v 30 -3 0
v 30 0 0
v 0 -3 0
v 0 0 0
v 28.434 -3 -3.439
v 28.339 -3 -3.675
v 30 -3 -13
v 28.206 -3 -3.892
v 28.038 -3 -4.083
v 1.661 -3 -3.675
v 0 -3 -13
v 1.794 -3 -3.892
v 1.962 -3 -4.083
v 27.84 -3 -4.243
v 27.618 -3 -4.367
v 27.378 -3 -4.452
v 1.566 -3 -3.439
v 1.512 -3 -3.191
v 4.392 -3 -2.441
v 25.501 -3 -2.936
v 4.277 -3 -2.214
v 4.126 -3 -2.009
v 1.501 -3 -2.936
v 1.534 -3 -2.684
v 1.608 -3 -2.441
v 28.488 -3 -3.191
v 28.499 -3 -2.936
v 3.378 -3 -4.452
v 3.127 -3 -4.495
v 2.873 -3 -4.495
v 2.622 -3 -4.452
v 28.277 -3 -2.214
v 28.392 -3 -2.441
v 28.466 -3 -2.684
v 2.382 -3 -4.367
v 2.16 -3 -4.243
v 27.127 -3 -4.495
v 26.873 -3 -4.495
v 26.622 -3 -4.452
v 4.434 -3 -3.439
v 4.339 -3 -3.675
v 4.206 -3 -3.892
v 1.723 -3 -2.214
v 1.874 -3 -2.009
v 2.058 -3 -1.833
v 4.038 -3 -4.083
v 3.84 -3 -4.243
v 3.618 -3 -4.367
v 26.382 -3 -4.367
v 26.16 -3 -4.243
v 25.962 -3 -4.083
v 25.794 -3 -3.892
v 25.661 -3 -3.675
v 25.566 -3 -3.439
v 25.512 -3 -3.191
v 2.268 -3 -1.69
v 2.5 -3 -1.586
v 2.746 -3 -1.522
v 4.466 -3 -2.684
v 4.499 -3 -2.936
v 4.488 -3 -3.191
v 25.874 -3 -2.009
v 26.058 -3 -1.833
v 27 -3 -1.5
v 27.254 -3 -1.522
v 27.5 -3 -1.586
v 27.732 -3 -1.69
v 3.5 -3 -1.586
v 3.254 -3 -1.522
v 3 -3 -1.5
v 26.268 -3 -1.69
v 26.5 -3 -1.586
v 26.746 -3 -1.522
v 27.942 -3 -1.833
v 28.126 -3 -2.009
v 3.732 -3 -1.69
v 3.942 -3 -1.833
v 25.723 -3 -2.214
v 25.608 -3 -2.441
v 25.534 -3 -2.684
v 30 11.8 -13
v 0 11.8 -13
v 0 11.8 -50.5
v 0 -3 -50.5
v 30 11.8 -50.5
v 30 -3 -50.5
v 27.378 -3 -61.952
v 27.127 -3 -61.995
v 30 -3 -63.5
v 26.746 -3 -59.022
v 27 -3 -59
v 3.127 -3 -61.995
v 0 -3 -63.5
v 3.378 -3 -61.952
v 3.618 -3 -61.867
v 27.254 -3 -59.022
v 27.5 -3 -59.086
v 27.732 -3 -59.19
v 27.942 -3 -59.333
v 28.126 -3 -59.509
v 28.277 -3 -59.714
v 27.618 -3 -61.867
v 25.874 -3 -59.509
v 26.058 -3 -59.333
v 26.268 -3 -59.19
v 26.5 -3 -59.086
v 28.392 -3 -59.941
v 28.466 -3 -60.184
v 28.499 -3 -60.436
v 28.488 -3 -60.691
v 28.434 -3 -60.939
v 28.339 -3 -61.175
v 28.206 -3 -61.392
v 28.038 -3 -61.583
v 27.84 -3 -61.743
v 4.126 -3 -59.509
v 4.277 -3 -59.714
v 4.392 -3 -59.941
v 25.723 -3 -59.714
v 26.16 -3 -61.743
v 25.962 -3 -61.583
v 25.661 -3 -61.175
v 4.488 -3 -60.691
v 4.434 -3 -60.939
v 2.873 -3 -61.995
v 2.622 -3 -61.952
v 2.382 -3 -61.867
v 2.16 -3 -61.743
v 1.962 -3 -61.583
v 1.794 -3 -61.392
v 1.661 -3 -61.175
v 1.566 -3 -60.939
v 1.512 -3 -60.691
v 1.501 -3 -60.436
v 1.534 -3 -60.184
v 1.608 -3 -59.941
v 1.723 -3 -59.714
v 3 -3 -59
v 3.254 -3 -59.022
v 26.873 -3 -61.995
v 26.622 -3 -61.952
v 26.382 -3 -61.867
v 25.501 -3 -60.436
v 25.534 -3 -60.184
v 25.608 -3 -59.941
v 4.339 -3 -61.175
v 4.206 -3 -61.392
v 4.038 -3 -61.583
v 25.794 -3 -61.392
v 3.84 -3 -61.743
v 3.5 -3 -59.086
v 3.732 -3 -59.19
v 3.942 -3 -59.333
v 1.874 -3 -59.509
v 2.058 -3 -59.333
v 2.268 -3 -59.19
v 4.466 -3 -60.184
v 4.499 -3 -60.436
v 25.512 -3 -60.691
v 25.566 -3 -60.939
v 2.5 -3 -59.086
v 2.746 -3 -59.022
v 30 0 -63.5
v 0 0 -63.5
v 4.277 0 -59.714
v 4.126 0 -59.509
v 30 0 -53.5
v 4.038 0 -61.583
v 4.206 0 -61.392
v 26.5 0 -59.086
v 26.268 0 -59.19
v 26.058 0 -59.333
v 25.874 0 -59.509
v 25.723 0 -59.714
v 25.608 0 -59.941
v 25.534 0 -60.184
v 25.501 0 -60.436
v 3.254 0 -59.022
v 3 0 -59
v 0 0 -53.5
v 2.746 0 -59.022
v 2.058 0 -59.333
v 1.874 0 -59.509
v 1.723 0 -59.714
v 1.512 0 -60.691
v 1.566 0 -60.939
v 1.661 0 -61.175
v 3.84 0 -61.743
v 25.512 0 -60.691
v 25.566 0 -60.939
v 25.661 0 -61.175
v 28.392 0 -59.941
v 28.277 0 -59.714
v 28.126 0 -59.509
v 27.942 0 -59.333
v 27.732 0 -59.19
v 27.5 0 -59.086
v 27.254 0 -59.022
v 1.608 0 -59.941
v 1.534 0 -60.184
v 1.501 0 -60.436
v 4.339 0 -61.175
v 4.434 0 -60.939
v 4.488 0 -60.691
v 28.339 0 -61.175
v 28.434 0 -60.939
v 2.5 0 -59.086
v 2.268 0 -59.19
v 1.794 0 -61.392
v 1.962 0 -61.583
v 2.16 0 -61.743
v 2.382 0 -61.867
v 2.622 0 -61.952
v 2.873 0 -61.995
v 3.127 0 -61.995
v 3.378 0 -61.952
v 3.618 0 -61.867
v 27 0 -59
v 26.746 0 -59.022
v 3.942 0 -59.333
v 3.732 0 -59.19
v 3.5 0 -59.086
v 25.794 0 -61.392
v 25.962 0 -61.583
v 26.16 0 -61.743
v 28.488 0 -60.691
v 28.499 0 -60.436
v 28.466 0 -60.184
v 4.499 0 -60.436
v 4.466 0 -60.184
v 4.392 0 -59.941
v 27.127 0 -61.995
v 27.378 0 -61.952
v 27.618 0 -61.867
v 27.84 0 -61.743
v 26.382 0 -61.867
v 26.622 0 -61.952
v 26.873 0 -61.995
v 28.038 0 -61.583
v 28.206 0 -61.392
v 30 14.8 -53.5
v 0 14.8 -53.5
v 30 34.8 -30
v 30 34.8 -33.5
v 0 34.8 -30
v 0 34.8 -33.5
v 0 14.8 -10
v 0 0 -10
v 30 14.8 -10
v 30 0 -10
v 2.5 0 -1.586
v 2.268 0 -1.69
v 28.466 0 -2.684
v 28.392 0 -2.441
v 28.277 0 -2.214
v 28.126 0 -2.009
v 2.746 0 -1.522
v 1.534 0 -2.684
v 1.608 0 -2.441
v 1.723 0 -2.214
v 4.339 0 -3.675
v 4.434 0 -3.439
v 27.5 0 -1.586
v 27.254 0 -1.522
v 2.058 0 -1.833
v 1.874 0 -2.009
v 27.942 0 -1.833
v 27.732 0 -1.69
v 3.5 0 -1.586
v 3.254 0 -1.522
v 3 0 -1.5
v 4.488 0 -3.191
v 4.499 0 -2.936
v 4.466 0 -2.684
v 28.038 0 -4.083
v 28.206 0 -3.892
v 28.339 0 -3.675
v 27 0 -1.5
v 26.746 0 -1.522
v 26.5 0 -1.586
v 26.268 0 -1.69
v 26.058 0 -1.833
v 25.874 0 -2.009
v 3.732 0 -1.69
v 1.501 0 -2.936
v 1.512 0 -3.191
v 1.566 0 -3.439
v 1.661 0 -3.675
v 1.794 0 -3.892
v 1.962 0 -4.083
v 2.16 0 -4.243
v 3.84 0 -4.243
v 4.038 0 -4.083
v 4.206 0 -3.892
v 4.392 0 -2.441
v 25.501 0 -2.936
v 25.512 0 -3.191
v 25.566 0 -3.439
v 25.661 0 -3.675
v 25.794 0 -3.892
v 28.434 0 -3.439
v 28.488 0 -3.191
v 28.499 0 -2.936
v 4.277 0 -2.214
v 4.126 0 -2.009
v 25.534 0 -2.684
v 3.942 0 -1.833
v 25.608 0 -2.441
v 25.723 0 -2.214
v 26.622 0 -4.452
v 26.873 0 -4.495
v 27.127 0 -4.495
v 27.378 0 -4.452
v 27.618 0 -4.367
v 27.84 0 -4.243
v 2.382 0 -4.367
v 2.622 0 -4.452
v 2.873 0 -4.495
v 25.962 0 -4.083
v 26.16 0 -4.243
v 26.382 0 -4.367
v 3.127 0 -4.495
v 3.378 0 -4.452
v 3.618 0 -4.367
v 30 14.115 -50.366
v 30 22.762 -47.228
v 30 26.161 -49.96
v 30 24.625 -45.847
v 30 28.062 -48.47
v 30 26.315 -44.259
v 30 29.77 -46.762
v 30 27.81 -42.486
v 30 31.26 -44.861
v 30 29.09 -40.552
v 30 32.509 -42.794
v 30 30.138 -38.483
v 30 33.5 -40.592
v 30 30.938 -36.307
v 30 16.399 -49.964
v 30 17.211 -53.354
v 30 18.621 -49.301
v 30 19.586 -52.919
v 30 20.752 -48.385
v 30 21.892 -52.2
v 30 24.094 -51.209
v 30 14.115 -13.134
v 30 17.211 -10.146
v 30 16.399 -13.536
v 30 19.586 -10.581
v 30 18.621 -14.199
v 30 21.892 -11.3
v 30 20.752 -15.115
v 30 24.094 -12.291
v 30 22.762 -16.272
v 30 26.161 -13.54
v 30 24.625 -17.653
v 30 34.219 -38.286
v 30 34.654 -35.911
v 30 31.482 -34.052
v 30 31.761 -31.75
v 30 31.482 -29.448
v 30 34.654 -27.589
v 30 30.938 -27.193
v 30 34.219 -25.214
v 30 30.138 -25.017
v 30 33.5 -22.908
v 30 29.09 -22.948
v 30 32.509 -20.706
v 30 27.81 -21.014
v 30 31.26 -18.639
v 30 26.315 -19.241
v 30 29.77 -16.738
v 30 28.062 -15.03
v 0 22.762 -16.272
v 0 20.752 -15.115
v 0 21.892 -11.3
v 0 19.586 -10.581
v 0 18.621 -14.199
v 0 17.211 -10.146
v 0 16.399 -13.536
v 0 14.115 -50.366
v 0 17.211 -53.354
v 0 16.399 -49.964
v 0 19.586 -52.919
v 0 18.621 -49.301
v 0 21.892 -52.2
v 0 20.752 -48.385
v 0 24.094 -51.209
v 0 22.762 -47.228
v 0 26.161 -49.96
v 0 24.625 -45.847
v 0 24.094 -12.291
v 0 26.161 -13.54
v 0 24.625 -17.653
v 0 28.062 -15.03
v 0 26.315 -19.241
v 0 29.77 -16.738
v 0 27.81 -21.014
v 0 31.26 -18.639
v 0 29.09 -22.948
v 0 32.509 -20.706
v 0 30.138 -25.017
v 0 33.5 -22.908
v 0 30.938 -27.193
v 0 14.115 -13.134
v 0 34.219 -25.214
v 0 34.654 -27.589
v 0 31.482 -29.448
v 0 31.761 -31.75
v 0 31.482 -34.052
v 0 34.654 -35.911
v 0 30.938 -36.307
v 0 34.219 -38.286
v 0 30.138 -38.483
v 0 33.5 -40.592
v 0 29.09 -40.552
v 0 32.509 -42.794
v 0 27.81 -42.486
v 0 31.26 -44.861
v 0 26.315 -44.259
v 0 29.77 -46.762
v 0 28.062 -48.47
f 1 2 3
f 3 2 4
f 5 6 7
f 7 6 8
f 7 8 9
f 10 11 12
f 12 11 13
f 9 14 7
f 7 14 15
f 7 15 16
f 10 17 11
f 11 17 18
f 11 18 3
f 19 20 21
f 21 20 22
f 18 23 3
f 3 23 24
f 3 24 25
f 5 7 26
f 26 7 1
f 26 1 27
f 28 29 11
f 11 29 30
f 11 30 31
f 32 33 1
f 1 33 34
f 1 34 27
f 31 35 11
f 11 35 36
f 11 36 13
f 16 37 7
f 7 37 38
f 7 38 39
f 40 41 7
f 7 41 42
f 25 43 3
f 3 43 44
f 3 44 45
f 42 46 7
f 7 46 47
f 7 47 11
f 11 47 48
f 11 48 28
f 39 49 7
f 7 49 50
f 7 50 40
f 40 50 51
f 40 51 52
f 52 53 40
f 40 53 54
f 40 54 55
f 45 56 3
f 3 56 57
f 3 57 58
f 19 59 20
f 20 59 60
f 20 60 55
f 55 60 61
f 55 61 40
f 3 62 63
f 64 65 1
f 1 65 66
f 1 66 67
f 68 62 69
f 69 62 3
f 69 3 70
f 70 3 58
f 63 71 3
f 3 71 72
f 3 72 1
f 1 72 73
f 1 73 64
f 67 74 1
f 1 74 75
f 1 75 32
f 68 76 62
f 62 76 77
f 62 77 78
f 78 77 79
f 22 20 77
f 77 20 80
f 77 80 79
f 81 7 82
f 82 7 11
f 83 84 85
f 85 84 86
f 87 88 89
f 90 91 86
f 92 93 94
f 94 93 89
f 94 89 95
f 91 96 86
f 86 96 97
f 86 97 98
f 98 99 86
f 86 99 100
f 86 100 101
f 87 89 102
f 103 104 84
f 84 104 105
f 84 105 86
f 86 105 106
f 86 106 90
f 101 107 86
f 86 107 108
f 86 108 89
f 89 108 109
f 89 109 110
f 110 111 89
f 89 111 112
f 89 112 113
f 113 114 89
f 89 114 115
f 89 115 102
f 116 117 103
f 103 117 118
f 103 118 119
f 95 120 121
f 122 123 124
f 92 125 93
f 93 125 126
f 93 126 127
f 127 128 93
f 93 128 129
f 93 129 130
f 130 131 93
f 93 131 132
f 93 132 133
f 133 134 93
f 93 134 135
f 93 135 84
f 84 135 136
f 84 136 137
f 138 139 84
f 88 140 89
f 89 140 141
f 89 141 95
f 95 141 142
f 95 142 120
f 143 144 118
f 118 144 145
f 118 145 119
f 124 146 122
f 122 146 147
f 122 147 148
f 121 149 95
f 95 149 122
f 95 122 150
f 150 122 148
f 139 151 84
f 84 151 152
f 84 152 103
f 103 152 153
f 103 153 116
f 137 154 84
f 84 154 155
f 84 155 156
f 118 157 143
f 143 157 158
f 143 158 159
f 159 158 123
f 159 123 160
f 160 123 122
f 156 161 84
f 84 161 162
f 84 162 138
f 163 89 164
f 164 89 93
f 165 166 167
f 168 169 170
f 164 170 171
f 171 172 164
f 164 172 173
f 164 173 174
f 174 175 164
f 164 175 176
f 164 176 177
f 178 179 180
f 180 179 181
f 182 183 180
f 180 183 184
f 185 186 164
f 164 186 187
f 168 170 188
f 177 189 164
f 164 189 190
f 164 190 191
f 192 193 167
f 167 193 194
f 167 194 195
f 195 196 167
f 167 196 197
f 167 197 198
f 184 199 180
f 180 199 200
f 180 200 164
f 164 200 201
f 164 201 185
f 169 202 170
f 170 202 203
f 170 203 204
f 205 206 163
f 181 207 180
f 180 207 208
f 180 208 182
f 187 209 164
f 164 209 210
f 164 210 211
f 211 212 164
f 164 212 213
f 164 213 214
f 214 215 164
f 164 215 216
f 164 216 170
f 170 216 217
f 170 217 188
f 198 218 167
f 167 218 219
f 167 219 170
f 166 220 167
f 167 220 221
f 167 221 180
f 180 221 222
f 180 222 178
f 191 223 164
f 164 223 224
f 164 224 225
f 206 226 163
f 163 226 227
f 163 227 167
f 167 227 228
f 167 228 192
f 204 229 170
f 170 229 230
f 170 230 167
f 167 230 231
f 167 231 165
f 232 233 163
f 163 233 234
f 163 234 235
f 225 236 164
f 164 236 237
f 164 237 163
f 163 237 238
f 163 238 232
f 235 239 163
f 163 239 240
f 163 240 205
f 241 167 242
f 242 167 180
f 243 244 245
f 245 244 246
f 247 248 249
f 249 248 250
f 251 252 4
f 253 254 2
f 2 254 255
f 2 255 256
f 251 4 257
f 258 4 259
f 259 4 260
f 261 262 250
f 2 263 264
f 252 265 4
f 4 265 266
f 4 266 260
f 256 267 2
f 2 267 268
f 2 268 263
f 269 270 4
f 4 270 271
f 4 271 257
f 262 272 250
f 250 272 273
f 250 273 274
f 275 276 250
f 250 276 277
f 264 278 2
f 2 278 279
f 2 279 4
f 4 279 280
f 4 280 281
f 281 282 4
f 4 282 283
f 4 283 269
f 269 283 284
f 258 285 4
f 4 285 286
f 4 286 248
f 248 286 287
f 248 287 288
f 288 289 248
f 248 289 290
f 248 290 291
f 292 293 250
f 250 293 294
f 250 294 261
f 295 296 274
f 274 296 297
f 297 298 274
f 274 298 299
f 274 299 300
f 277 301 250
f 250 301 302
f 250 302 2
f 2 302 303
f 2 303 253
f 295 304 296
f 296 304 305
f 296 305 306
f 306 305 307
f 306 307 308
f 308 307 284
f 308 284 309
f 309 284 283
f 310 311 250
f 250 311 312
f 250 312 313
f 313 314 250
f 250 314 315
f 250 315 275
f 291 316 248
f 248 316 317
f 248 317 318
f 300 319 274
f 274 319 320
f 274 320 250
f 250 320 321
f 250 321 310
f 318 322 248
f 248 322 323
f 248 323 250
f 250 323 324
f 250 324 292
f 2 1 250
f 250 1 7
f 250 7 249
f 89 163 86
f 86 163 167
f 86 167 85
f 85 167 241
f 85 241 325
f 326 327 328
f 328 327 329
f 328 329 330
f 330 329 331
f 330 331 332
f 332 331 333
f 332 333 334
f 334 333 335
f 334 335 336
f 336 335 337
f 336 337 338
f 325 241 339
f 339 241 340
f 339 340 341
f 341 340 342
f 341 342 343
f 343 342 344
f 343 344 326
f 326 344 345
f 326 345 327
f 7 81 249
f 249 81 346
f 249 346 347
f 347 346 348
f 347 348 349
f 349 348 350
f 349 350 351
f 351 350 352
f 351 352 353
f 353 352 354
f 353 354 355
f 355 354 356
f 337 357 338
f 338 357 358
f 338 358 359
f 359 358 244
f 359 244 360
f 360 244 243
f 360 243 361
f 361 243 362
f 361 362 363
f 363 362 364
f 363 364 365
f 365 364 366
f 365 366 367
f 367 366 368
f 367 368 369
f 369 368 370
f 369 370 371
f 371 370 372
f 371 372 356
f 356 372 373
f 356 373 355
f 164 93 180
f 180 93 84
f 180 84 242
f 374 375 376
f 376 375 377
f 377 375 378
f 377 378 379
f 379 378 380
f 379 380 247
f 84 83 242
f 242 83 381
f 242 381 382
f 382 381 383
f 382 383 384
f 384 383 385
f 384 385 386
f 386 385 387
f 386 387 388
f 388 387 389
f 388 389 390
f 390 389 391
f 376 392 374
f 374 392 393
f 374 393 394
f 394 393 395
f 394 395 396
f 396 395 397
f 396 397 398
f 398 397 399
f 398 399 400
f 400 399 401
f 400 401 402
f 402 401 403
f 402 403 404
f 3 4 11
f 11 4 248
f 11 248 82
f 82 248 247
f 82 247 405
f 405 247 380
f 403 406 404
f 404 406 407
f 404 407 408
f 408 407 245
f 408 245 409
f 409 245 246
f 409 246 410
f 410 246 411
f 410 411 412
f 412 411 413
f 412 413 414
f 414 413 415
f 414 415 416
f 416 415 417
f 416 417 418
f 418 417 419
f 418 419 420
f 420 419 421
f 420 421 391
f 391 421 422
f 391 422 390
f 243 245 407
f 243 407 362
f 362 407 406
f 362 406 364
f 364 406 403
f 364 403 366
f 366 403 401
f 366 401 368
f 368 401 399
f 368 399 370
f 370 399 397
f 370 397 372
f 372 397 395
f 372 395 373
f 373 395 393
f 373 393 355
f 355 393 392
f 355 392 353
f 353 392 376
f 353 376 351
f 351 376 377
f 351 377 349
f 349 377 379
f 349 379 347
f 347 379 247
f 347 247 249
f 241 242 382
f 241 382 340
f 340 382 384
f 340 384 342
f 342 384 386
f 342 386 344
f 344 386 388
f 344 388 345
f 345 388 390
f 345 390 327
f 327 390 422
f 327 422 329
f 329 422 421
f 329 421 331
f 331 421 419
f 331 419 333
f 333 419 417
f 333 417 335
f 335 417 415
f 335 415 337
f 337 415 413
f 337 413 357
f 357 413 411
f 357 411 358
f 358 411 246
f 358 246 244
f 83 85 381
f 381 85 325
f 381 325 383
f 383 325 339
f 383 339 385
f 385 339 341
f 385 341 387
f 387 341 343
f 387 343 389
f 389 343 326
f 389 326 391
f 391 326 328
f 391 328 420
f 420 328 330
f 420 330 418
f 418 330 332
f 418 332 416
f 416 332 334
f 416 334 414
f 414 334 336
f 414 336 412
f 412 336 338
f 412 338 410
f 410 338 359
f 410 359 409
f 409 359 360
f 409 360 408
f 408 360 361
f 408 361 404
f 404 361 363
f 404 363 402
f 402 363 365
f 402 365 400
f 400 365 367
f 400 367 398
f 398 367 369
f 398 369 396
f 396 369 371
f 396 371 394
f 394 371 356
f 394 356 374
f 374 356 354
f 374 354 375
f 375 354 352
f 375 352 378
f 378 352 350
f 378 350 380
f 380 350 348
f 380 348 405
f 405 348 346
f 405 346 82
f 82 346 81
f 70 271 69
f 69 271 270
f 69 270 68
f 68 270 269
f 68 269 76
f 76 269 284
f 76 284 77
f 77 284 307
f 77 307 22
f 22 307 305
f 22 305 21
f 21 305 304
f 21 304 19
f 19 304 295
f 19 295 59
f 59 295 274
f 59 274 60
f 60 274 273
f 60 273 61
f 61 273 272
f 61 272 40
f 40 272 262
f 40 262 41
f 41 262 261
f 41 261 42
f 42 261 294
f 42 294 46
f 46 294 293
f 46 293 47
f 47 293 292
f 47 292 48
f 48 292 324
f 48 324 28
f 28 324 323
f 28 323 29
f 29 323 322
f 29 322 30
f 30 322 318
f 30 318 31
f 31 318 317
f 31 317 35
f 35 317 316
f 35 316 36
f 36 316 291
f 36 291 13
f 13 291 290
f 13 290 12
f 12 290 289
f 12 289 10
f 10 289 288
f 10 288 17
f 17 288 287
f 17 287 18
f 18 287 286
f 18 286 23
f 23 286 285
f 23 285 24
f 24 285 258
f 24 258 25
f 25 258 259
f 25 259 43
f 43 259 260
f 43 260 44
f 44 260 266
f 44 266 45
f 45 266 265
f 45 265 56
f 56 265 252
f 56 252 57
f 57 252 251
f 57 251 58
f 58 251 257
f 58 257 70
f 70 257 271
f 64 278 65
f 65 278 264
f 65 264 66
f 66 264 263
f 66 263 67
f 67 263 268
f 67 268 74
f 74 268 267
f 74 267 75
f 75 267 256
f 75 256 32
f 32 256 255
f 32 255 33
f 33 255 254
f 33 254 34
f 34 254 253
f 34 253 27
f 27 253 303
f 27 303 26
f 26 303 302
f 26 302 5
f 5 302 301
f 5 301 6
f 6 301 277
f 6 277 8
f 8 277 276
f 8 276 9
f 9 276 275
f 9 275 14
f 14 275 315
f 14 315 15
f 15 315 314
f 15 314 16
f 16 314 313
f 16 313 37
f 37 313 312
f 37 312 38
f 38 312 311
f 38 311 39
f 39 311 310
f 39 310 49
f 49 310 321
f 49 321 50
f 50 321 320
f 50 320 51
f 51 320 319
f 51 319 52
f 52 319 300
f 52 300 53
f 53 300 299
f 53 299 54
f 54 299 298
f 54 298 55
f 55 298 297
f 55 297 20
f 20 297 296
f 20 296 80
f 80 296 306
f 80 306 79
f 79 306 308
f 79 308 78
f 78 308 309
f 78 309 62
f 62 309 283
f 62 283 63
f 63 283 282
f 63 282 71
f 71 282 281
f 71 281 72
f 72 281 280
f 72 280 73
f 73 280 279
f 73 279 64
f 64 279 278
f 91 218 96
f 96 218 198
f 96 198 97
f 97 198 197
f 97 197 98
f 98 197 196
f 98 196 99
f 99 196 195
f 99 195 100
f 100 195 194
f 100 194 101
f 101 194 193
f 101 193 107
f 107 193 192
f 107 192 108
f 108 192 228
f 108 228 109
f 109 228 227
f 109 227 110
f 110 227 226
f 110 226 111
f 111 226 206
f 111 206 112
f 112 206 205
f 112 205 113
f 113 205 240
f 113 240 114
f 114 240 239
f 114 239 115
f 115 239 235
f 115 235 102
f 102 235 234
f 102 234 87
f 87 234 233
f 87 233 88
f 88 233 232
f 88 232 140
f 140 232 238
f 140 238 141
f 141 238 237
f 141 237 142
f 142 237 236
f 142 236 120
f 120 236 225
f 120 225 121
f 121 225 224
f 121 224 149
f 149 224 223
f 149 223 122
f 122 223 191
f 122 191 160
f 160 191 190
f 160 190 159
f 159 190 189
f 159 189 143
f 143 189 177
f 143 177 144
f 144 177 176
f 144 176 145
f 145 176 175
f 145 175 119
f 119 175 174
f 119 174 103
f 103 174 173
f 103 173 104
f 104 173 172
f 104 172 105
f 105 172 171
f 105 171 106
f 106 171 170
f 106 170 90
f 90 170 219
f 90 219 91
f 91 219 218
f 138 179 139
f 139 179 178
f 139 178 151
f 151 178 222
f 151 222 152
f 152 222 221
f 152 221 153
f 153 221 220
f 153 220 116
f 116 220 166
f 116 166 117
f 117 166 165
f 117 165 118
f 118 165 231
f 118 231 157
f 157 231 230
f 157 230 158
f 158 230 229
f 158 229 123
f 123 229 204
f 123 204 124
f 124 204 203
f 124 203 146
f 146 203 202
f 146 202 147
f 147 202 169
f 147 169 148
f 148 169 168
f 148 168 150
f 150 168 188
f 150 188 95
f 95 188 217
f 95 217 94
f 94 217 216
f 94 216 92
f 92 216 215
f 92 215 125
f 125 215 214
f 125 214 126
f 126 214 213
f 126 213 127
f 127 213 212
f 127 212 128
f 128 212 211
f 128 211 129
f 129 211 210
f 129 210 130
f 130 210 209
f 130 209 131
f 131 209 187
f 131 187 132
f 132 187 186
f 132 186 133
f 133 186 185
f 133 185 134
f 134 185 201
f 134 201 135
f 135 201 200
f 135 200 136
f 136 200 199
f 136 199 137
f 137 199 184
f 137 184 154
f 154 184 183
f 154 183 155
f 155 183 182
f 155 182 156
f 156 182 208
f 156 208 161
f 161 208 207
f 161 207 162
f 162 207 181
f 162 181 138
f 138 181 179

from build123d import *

# Parameters (mm, degrees)
BOSS_EXTRUDE2_DEPTH = 30
FILLET1_R           = 20
SKETCH7_R           = 1.5
CUT_EXTRUDE2_DEPTH  = 79.379142634


with BuildPart() as part:
    # Sketch6 → Boss-Extrude2 (new body)
    with BuildSketch(Plane(origin=(0, 0, 0), x_dir=(0, 0, -1), z_dir=(1, 0, 0))):
        Polygon((0, 0), (10, 0), (10, 34.8), (53.5, 34.8), (53.5, 0), (63.5, 0), (63.5, -3), (50.5, -3), (50.5, 31.8), (13, 31.8), (13, -3), (0, -3), align=None)
    extrude(amount=BOSS_EXTRUDE2_DEPTH)

    # Fillet1
    # the kernel refuses this fillet: 20 mm, written as the material it adds along each edge
    with BuildSketch(Plane(origin=(0, 31.8, -13), x_dir=(0, 0, -1), z_dir=(1, 0, 0)), Plane(origin=(0, 31.8, -50.5), x_dir=(0, -1, 0), z_dir=(1, 0, 0))) as fillet1_piece_1:
        with BuildLine():
            CenterArc((FILLET1_R, -FILLET1_R), FILLET1_R, 90, 90)
            Line((0, -FILLET1_R), (0, 0))
            Line((0, 0), (FILLET1_R, 0))
        make_face()
    extrude(amount=30)
    # the kernel refuses this fillet: 20 mm, written as the material it takes off along each edge
    with BuildSketch(Plane(origin=(-50, 34.8, -10), x_dir=(0, -1, 0), z_dir=(1, 0, 0)), Plane(origin=(-50, 34.8, -53.5), x_dir=(0, 0, 1), z_dir=(1, 0, 0))) as fillet1_2_piece_1:
        with BuildLine():
            CenterArc((FILLET1_R, FILLET1_R), FILLET1_R, 180, 90)
            Line((0, FILLET1_R), (0, 0))
            Line((0, 0), (FILLET1_R, 0))
        make_face()
    extrude(amount=130, mode=Mode.SUBTRACT)

    # Sketch7 → Cut-Extrude2 (cut, through all)
    with BuildSketch(Plane(origin=(0, 0, 0), x_dir=(1, 0, 0), z_dir=(0, 1, 0))):
        with Locations(Location((27, 60.5, 0), (0, 0, 270))):
            Circle(SKETCH7_R)
        with Locations(Location((3, 60.5, 0), (0, 0, 270))):
            Circle(SKETCH7_R)
        with Locations(Location((3, 3, 0), (0, 0, 270))):
            Circle(SKETCH7_R)
        with Locations(Location((27, 3, 0), (0, 0, 270))):
            Circle(SKETCH7_R)
    extrude(amount=-CUT_EXTRUDE2_DEPTH, mode=Mode.SUBTRACT)


solid = part.part
